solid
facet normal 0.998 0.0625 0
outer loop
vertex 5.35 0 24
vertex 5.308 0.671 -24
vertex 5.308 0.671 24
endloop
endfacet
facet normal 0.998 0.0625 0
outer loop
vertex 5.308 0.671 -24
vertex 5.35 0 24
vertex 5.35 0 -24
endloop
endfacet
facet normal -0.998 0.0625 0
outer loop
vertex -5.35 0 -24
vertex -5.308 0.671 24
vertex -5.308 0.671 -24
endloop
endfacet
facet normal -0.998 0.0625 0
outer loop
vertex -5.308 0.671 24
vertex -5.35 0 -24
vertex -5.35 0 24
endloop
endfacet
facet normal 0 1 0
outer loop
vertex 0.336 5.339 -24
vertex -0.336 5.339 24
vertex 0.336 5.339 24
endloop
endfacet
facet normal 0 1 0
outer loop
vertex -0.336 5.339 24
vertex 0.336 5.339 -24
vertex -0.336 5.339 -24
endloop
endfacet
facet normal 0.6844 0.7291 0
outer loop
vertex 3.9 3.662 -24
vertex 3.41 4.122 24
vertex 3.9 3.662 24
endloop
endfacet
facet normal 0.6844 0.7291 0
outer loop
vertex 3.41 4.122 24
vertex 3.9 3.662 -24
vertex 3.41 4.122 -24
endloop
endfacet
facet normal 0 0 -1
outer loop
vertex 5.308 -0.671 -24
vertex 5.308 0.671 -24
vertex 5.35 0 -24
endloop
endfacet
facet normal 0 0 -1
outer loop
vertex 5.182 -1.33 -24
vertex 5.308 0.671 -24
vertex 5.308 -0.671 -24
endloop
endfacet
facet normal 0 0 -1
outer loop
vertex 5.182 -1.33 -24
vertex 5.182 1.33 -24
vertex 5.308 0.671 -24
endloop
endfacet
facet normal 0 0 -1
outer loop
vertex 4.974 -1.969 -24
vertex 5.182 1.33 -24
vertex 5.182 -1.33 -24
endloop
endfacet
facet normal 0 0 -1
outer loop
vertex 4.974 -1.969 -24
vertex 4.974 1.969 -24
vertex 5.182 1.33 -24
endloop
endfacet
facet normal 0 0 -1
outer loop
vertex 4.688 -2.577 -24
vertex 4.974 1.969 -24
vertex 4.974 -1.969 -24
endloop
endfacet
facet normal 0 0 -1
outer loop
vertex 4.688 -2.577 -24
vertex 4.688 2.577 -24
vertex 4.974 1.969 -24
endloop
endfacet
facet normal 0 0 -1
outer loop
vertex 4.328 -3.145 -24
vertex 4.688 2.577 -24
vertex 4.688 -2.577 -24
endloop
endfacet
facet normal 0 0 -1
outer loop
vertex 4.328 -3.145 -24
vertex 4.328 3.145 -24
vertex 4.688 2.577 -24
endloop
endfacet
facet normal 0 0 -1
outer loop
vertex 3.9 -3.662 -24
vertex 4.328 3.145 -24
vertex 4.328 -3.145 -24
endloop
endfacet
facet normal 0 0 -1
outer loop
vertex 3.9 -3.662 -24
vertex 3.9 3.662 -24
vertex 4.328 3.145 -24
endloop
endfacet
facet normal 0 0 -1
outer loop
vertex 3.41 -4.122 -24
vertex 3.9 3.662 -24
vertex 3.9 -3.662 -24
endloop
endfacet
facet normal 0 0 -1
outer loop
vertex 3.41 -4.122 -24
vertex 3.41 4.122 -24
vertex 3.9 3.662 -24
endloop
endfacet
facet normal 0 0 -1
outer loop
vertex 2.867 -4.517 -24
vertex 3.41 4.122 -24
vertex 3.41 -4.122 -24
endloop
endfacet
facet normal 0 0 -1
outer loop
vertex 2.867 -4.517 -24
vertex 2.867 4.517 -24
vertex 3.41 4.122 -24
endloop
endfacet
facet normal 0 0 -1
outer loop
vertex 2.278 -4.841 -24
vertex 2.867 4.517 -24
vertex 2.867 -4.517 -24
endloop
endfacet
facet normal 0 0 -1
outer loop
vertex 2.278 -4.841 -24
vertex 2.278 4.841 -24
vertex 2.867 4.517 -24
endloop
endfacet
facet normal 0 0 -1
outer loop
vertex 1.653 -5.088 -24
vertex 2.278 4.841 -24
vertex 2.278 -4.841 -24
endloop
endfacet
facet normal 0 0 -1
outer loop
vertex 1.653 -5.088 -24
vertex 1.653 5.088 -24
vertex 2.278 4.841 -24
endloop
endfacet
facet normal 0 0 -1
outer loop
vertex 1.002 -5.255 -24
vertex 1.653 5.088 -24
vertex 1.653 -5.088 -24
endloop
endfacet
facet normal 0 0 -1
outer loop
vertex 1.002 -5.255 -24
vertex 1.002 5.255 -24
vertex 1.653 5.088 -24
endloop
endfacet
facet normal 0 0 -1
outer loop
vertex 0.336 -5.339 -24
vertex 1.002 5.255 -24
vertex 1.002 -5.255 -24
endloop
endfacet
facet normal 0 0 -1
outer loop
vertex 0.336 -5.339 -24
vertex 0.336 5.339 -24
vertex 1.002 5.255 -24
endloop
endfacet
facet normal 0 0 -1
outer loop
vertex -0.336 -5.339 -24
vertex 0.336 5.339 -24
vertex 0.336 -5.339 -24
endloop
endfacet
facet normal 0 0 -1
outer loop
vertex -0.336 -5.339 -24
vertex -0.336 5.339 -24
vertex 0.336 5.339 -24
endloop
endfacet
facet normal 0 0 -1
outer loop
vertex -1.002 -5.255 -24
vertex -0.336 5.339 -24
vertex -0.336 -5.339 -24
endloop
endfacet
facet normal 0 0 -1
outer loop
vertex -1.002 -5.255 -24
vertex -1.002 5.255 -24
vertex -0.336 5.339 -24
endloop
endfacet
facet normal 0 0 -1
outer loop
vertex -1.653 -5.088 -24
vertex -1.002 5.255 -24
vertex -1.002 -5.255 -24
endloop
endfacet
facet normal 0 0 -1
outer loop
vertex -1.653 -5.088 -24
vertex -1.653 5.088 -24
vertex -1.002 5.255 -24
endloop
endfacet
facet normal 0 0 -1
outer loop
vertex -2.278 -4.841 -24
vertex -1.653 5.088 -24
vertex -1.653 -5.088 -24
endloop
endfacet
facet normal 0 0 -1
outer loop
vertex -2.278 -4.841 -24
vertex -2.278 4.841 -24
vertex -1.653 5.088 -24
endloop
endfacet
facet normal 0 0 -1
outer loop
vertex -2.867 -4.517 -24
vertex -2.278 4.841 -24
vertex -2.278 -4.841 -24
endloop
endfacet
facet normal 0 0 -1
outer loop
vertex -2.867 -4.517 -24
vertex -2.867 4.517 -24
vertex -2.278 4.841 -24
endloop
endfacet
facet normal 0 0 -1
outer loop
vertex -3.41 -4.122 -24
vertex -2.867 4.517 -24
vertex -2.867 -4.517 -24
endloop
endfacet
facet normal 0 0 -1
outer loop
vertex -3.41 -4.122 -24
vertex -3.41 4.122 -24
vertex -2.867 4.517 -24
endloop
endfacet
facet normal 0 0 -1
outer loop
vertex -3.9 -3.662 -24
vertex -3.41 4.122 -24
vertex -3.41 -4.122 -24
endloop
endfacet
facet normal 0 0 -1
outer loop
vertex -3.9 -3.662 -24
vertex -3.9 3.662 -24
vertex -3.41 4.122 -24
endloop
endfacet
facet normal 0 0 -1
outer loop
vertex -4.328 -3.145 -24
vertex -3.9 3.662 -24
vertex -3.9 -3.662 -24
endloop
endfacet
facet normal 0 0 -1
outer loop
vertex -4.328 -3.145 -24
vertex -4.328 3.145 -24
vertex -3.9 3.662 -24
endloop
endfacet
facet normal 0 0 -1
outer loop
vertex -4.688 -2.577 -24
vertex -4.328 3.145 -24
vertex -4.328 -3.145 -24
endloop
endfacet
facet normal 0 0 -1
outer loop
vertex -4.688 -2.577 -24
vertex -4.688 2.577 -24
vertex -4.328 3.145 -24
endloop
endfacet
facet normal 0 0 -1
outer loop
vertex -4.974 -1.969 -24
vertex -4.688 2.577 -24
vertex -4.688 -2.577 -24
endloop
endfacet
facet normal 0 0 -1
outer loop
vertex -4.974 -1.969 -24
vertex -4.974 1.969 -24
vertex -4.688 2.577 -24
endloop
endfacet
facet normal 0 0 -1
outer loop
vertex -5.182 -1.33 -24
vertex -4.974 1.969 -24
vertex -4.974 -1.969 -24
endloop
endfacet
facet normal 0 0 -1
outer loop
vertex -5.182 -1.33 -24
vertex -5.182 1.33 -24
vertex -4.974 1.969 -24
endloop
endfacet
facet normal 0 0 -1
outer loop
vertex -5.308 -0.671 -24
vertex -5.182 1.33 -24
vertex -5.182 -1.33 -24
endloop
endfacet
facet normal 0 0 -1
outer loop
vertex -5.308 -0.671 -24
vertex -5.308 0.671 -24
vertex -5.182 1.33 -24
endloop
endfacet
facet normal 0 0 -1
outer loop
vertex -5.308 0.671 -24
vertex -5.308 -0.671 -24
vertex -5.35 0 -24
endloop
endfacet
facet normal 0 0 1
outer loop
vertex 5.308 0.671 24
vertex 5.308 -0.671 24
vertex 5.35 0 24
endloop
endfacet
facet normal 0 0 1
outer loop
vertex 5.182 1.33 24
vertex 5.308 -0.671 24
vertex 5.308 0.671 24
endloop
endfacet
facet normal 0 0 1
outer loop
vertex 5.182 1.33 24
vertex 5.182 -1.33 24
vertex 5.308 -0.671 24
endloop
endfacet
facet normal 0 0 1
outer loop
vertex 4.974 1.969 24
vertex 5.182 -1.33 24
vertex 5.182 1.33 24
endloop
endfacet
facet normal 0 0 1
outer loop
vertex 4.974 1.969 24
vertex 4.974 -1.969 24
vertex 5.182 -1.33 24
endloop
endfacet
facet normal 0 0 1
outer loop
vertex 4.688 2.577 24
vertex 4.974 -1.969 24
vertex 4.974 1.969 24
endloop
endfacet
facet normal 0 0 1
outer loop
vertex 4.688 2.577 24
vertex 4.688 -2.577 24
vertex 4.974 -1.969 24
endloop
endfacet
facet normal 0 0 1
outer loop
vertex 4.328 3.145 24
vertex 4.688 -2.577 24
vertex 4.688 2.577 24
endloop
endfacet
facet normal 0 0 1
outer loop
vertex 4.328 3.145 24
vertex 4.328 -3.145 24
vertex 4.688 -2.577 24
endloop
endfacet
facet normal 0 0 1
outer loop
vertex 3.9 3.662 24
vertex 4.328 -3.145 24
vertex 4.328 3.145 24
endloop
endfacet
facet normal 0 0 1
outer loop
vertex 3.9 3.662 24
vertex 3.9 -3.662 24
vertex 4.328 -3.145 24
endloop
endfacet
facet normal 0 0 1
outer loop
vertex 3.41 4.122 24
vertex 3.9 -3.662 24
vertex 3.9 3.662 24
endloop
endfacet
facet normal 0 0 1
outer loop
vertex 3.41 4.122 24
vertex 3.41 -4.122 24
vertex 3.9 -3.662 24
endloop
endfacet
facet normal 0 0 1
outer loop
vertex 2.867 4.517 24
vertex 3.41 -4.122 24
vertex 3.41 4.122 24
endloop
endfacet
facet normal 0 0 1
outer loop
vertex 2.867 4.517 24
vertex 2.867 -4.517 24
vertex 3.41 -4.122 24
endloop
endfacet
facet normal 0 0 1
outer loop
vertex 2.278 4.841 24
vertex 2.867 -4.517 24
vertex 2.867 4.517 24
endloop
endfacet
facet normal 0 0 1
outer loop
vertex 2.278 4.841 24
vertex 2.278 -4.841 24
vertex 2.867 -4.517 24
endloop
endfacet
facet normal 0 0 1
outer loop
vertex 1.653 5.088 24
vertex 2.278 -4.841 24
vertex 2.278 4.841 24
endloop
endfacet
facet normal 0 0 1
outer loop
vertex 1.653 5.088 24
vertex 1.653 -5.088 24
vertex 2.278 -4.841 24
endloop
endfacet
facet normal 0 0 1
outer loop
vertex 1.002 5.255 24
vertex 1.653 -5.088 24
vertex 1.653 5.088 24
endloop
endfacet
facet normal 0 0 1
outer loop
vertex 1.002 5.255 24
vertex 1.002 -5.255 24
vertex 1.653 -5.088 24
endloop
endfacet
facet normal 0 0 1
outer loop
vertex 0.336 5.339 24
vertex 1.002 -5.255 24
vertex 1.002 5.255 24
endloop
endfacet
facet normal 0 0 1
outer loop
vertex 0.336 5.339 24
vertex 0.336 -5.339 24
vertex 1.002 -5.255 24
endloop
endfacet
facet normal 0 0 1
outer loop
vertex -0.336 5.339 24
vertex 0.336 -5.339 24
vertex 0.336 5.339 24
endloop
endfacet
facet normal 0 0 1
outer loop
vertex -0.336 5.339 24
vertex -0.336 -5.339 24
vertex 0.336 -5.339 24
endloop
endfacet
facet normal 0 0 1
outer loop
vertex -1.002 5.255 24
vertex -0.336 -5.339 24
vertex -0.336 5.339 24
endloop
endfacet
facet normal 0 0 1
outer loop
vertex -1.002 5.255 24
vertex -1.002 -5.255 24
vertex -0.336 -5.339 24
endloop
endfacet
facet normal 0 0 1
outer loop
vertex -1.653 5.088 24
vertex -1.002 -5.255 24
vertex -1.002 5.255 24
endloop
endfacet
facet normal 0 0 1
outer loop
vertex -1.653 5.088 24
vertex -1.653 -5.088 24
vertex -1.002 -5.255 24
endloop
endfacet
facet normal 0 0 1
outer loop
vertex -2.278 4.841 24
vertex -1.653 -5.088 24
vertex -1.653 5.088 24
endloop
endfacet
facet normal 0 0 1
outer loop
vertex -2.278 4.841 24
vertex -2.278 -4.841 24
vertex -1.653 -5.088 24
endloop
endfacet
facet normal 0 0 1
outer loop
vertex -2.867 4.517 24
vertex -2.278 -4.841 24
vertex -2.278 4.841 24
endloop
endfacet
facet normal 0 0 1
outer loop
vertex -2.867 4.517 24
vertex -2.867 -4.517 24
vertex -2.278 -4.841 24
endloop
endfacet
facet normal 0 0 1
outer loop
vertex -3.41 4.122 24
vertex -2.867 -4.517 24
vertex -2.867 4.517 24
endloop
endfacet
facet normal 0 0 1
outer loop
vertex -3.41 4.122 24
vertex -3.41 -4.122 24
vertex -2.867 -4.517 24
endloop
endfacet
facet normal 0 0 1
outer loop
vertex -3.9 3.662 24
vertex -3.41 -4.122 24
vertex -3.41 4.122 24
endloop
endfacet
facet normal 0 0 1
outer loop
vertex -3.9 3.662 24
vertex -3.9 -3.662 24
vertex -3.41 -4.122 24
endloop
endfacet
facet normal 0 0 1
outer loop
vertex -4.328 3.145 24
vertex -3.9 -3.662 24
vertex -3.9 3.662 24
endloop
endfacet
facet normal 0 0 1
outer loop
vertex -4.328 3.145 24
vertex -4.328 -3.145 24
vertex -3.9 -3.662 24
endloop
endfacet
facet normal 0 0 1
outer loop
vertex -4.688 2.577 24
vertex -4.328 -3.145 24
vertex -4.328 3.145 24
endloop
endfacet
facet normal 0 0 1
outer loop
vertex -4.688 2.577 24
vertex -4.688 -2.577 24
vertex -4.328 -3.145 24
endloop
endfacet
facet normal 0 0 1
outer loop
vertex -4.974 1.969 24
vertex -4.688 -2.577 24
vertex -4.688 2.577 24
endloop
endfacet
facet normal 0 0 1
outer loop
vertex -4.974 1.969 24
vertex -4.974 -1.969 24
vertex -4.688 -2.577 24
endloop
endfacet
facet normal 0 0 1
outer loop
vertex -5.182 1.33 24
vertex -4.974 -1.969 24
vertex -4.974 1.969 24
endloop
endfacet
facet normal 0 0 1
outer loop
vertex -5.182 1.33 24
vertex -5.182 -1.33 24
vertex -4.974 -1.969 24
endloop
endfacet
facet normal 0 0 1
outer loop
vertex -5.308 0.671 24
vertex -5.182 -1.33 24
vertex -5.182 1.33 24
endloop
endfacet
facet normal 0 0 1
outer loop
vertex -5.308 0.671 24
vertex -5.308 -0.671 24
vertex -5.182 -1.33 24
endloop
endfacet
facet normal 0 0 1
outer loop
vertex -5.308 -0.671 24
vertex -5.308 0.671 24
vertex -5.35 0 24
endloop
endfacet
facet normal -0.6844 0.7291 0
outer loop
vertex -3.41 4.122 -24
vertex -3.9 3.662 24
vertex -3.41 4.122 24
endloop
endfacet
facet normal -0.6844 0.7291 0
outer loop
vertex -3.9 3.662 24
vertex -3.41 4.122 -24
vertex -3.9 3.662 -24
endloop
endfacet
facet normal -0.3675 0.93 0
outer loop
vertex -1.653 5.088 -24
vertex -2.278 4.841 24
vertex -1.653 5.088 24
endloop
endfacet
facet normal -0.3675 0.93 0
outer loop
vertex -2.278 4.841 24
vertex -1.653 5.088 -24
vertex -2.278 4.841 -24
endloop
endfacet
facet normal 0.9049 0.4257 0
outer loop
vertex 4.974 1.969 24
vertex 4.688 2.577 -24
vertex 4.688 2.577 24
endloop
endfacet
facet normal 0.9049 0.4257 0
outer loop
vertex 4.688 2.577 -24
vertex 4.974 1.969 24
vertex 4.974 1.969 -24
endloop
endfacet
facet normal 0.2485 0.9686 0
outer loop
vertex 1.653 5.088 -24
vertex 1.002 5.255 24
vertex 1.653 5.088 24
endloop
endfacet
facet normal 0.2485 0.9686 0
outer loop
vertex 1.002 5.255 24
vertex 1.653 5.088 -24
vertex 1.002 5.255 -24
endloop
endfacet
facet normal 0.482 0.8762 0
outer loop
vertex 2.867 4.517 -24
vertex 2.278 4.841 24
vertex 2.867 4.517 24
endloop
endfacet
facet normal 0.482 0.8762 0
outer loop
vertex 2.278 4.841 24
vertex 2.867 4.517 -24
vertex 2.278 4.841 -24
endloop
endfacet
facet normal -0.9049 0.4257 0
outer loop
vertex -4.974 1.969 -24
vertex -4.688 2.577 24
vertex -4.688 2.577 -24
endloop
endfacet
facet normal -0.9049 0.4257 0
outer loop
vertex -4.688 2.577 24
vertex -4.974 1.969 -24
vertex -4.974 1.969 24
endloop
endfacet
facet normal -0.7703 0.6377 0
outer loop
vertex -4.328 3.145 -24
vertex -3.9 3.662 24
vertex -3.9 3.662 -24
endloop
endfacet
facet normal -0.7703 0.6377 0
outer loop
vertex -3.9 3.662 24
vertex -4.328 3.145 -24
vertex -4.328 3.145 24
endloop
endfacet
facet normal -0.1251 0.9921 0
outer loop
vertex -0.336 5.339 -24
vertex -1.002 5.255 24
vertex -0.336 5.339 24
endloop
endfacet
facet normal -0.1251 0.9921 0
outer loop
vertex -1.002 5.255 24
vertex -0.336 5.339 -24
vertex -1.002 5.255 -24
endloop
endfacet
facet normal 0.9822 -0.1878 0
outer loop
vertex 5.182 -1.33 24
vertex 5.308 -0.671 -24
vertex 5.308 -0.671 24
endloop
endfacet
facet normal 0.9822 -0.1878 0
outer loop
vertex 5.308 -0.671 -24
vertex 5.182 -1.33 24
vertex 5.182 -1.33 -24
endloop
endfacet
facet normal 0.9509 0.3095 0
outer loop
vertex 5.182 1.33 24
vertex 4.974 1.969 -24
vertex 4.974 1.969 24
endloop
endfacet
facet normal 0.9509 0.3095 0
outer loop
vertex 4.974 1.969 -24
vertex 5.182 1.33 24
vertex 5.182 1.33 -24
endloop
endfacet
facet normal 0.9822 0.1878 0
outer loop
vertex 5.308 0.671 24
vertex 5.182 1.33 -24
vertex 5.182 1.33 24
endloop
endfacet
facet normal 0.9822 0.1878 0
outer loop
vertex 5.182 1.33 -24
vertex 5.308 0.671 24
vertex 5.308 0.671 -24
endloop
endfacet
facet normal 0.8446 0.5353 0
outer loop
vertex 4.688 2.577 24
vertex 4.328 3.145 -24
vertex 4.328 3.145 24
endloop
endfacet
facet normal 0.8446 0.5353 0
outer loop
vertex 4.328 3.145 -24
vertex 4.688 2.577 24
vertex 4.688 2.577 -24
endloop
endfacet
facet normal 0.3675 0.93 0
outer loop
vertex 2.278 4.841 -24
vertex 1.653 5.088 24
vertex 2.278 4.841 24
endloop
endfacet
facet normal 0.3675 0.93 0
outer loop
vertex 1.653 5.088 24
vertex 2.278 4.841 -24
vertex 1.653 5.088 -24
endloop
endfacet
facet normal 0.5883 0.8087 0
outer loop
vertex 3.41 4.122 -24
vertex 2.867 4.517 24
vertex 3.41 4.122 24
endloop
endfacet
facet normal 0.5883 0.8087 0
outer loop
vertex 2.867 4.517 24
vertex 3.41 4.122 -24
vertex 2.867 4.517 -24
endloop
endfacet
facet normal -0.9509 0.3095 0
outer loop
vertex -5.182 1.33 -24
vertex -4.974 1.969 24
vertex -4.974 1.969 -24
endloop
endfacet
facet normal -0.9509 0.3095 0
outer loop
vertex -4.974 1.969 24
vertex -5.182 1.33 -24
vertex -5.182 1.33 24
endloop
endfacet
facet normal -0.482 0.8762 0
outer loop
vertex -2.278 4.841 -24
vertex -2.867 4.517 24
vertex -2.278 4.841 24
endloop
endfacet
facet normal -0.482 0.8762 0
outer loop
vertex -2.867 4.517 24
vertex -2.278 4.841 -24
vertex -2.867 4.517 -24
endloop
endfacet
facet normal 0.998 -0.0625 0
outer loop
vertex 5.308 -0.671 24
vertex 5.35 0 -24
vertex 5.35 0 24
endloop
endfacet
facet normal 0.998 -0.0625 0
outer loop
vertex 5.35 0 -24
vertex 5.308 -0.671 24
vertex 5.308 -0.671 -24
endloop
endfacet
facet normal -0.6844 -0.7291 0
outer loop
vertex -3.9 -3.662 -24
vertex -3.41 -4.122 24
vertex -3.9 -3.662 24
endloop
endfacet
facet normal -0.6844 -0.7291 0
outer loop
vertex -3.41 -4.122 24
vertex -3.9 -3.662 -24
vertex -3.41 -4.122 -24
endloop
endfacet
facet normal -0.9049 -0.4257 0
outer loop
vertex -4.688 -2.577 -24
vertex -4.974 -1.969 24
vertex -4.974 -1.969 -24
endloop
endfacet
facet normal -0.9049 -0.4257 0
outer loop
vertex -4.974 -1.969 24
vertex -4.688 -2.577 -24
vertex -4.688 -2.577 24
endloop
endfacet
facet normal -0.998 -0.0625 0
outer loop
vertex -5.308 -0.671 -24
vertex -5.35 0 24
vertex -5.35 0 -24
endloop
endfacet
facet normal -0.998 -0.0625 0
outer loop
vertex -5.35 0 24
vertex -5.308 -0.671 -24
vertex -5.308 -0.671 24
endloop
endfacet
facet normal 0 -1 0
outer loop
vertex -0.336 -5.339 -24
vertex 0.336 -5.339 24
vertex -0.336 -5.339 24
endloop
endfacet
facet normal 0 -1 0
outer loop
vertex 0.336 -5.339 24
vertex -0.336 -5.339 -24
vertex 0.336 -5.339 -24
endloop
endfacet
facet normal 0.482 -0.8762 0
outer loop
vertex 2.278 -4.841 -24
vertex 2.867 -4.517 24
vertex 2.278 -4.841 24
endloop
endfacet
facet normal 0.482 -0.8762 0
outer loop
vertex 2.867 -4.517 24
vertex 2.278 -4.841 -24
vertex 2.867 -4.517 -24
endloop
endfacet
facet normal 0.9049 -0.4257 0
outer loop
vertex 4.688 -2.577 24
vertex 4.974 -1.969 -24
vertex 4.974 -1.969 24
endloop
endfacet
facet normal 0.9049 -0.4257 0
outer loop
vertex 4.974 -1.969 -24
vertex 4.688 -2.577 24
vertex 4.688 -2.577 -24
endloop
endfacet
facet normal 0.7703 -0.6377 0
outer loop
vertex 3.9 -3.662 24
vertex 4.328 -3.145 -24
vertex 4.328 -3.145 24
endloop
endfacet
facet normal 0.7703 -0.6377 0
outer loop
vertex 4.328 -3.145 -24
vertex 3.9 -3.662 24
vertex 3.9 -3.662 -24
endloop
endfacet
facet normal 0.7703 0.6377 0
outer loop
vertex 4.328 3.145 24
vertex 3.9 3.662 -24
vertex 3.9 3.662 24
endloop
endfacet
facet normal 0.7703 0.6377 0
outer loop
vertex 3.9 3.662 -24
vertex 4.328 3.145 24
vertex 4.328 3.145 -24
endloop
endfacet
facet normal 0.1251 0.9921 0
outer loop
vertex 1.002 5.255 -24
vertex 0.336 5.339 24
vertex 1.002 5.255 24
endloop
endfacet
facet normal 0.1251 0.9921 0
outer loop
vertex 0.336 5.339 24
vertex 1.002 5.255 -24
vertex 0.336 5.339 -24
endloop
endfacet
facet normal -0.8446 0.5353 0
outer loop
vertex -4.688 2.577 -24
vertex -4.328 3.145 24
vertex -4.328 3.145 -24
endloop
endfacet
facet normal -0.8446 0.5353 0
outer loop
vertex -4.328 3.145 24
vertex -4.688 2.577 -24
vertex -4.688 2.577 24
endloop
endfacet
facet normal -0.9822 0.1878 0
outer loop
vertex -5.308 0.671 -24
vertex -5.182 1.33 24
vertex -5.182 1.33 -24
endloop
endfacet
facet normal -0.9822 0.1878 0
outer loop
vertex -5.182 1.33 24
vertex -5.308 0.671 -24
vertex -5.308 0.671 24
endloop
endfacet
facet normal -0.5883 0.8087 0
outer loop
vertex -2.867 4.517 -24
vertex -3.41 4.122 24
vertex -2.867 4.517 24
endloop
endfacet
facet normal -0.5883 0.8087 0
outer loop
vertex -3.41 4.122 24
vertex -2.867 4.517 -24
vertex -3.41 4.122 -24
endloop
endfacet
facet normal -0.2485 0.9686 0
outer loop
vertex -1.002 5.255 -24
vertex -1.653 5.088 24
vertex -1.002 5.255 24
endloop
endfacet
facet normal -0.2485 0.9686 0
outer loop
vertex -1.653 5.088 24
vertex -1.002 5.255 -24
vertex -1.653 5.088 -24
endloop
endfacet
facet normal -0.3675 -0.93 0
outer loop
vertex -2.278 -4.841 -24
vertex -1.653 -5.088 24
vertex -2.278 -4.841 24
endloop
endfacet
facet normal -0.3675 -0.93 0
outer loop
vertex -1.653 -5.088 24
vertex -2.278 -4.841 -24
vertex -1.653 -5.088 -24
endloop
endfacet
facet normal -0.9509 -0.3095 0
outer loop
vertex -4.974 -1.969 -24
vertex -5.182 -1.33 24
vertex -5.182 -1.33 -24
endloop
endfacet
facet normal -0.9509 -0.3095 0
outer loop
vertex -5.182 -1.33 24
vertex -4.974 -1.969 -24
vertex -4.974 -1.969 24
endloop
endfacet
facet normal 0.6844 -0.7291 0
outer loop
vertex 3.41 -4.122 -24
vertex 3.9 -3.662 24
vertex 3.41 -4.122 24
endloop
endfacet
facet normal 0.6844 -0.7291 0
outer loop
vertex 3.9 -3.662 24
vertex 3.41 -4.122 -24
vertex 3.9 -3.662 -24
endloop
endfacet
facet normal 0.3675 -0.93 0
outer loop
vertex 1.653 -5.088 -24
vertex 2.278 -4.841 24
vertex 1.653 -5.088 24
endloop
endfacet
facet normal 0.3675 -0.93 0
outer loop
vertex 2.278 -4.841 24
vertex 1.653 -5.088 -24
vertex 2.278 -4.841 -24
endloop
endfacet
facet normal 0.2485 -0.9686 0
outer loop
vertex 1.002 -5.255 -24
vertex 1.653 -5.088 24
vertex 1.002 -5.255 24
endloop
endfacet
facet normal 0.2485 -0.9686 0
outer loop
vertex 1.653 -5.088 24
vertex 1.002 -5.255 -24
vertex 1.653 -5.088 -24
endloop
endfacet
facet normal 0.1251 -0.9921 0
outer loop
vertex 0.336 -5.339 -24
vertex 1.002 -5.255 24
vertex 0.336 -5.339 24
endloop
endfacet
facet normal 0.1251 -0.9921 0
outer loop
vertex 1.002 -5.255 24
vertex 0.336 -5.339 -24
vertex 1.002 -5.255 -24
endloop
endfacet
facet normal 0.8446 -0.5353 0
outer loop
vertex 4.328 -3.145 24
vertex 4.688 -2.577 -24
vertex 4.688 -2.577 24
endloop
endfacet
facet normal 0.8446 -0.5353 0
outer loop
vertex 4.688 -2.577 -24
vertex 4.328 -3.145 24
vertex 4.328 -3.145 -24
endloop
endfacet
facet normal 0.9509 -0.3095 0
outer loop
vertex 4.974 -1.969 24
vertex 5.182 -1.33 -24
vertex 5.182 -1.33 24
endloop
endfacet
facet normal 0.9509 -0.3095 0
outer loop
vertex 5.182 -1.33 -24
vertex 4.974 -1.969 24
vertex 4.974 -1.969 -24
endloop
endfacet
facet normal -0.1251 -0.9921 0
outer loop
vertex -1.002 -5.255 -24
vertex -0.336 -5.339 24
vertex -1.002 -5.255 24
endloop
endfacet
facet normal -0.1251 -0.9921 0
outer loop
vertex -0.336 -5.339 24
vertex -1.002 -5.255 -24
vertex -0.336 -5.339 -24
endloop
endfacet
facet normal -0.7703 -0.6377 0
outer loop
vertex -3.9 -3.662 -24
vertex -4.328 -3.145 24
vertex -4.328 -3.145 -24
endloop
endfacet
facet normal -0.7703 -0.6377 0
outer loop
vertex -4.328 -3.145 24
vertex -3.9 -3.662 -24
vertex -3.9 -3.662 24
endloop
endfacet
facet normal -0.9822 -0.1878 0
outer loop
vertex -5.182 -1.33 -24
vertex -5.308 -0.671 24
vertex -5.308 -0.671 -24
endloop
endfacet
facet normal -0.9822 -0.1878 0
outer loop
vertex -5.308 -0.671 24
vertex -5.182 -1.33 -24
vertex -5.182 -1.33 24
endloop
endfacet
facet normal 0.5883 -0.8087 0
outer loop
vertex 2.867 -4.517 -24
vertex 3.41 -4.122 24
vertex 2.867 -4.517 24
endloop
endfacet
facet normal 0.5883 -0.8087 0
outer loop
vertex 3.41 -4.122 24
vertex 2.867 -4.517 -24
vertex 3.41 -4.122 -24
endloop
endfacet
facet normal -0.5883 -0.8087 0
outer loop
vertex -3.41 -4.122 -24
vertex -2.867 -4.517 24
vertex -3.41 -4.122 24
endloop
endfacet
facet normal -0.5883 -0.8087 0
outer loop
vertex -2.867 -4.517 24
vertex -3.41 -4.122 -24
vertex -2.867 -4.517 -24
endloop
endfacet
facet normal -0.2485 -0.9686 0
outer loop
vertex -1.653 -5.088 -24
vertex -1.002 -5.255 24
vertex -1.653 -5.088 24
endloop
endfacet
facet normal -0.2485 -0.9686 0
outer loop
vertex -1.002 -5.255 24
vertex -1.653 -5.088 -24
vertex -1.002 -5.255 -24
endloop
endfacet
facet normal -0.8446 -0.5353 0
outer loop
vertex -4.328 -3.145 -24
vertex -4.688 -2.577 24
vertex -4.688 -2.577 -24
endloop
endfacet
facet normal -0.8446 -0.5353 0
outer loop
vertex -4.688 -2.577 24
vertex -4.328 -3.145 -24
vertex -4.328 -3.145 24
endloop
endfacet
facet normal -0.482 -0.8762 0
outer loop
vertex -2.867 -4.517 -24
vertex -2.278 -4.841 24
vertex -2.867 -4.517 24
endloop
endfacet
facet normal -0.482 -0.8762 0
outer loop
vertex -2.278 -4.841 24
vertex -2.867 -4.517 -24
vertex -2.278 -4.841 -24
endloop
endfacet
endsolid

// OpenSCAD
$fn = 50;


difference() {
	union() {
		translate(v = [0, 0, -24.0000000000]) {
			cylinder(h = 48, r = 5.3500000000);
		}
	}
	union() {
		translate(v = [0, 0, -100.0000000000]) {
			cylinder(h = 200, r = 0);
		}
	}
}
